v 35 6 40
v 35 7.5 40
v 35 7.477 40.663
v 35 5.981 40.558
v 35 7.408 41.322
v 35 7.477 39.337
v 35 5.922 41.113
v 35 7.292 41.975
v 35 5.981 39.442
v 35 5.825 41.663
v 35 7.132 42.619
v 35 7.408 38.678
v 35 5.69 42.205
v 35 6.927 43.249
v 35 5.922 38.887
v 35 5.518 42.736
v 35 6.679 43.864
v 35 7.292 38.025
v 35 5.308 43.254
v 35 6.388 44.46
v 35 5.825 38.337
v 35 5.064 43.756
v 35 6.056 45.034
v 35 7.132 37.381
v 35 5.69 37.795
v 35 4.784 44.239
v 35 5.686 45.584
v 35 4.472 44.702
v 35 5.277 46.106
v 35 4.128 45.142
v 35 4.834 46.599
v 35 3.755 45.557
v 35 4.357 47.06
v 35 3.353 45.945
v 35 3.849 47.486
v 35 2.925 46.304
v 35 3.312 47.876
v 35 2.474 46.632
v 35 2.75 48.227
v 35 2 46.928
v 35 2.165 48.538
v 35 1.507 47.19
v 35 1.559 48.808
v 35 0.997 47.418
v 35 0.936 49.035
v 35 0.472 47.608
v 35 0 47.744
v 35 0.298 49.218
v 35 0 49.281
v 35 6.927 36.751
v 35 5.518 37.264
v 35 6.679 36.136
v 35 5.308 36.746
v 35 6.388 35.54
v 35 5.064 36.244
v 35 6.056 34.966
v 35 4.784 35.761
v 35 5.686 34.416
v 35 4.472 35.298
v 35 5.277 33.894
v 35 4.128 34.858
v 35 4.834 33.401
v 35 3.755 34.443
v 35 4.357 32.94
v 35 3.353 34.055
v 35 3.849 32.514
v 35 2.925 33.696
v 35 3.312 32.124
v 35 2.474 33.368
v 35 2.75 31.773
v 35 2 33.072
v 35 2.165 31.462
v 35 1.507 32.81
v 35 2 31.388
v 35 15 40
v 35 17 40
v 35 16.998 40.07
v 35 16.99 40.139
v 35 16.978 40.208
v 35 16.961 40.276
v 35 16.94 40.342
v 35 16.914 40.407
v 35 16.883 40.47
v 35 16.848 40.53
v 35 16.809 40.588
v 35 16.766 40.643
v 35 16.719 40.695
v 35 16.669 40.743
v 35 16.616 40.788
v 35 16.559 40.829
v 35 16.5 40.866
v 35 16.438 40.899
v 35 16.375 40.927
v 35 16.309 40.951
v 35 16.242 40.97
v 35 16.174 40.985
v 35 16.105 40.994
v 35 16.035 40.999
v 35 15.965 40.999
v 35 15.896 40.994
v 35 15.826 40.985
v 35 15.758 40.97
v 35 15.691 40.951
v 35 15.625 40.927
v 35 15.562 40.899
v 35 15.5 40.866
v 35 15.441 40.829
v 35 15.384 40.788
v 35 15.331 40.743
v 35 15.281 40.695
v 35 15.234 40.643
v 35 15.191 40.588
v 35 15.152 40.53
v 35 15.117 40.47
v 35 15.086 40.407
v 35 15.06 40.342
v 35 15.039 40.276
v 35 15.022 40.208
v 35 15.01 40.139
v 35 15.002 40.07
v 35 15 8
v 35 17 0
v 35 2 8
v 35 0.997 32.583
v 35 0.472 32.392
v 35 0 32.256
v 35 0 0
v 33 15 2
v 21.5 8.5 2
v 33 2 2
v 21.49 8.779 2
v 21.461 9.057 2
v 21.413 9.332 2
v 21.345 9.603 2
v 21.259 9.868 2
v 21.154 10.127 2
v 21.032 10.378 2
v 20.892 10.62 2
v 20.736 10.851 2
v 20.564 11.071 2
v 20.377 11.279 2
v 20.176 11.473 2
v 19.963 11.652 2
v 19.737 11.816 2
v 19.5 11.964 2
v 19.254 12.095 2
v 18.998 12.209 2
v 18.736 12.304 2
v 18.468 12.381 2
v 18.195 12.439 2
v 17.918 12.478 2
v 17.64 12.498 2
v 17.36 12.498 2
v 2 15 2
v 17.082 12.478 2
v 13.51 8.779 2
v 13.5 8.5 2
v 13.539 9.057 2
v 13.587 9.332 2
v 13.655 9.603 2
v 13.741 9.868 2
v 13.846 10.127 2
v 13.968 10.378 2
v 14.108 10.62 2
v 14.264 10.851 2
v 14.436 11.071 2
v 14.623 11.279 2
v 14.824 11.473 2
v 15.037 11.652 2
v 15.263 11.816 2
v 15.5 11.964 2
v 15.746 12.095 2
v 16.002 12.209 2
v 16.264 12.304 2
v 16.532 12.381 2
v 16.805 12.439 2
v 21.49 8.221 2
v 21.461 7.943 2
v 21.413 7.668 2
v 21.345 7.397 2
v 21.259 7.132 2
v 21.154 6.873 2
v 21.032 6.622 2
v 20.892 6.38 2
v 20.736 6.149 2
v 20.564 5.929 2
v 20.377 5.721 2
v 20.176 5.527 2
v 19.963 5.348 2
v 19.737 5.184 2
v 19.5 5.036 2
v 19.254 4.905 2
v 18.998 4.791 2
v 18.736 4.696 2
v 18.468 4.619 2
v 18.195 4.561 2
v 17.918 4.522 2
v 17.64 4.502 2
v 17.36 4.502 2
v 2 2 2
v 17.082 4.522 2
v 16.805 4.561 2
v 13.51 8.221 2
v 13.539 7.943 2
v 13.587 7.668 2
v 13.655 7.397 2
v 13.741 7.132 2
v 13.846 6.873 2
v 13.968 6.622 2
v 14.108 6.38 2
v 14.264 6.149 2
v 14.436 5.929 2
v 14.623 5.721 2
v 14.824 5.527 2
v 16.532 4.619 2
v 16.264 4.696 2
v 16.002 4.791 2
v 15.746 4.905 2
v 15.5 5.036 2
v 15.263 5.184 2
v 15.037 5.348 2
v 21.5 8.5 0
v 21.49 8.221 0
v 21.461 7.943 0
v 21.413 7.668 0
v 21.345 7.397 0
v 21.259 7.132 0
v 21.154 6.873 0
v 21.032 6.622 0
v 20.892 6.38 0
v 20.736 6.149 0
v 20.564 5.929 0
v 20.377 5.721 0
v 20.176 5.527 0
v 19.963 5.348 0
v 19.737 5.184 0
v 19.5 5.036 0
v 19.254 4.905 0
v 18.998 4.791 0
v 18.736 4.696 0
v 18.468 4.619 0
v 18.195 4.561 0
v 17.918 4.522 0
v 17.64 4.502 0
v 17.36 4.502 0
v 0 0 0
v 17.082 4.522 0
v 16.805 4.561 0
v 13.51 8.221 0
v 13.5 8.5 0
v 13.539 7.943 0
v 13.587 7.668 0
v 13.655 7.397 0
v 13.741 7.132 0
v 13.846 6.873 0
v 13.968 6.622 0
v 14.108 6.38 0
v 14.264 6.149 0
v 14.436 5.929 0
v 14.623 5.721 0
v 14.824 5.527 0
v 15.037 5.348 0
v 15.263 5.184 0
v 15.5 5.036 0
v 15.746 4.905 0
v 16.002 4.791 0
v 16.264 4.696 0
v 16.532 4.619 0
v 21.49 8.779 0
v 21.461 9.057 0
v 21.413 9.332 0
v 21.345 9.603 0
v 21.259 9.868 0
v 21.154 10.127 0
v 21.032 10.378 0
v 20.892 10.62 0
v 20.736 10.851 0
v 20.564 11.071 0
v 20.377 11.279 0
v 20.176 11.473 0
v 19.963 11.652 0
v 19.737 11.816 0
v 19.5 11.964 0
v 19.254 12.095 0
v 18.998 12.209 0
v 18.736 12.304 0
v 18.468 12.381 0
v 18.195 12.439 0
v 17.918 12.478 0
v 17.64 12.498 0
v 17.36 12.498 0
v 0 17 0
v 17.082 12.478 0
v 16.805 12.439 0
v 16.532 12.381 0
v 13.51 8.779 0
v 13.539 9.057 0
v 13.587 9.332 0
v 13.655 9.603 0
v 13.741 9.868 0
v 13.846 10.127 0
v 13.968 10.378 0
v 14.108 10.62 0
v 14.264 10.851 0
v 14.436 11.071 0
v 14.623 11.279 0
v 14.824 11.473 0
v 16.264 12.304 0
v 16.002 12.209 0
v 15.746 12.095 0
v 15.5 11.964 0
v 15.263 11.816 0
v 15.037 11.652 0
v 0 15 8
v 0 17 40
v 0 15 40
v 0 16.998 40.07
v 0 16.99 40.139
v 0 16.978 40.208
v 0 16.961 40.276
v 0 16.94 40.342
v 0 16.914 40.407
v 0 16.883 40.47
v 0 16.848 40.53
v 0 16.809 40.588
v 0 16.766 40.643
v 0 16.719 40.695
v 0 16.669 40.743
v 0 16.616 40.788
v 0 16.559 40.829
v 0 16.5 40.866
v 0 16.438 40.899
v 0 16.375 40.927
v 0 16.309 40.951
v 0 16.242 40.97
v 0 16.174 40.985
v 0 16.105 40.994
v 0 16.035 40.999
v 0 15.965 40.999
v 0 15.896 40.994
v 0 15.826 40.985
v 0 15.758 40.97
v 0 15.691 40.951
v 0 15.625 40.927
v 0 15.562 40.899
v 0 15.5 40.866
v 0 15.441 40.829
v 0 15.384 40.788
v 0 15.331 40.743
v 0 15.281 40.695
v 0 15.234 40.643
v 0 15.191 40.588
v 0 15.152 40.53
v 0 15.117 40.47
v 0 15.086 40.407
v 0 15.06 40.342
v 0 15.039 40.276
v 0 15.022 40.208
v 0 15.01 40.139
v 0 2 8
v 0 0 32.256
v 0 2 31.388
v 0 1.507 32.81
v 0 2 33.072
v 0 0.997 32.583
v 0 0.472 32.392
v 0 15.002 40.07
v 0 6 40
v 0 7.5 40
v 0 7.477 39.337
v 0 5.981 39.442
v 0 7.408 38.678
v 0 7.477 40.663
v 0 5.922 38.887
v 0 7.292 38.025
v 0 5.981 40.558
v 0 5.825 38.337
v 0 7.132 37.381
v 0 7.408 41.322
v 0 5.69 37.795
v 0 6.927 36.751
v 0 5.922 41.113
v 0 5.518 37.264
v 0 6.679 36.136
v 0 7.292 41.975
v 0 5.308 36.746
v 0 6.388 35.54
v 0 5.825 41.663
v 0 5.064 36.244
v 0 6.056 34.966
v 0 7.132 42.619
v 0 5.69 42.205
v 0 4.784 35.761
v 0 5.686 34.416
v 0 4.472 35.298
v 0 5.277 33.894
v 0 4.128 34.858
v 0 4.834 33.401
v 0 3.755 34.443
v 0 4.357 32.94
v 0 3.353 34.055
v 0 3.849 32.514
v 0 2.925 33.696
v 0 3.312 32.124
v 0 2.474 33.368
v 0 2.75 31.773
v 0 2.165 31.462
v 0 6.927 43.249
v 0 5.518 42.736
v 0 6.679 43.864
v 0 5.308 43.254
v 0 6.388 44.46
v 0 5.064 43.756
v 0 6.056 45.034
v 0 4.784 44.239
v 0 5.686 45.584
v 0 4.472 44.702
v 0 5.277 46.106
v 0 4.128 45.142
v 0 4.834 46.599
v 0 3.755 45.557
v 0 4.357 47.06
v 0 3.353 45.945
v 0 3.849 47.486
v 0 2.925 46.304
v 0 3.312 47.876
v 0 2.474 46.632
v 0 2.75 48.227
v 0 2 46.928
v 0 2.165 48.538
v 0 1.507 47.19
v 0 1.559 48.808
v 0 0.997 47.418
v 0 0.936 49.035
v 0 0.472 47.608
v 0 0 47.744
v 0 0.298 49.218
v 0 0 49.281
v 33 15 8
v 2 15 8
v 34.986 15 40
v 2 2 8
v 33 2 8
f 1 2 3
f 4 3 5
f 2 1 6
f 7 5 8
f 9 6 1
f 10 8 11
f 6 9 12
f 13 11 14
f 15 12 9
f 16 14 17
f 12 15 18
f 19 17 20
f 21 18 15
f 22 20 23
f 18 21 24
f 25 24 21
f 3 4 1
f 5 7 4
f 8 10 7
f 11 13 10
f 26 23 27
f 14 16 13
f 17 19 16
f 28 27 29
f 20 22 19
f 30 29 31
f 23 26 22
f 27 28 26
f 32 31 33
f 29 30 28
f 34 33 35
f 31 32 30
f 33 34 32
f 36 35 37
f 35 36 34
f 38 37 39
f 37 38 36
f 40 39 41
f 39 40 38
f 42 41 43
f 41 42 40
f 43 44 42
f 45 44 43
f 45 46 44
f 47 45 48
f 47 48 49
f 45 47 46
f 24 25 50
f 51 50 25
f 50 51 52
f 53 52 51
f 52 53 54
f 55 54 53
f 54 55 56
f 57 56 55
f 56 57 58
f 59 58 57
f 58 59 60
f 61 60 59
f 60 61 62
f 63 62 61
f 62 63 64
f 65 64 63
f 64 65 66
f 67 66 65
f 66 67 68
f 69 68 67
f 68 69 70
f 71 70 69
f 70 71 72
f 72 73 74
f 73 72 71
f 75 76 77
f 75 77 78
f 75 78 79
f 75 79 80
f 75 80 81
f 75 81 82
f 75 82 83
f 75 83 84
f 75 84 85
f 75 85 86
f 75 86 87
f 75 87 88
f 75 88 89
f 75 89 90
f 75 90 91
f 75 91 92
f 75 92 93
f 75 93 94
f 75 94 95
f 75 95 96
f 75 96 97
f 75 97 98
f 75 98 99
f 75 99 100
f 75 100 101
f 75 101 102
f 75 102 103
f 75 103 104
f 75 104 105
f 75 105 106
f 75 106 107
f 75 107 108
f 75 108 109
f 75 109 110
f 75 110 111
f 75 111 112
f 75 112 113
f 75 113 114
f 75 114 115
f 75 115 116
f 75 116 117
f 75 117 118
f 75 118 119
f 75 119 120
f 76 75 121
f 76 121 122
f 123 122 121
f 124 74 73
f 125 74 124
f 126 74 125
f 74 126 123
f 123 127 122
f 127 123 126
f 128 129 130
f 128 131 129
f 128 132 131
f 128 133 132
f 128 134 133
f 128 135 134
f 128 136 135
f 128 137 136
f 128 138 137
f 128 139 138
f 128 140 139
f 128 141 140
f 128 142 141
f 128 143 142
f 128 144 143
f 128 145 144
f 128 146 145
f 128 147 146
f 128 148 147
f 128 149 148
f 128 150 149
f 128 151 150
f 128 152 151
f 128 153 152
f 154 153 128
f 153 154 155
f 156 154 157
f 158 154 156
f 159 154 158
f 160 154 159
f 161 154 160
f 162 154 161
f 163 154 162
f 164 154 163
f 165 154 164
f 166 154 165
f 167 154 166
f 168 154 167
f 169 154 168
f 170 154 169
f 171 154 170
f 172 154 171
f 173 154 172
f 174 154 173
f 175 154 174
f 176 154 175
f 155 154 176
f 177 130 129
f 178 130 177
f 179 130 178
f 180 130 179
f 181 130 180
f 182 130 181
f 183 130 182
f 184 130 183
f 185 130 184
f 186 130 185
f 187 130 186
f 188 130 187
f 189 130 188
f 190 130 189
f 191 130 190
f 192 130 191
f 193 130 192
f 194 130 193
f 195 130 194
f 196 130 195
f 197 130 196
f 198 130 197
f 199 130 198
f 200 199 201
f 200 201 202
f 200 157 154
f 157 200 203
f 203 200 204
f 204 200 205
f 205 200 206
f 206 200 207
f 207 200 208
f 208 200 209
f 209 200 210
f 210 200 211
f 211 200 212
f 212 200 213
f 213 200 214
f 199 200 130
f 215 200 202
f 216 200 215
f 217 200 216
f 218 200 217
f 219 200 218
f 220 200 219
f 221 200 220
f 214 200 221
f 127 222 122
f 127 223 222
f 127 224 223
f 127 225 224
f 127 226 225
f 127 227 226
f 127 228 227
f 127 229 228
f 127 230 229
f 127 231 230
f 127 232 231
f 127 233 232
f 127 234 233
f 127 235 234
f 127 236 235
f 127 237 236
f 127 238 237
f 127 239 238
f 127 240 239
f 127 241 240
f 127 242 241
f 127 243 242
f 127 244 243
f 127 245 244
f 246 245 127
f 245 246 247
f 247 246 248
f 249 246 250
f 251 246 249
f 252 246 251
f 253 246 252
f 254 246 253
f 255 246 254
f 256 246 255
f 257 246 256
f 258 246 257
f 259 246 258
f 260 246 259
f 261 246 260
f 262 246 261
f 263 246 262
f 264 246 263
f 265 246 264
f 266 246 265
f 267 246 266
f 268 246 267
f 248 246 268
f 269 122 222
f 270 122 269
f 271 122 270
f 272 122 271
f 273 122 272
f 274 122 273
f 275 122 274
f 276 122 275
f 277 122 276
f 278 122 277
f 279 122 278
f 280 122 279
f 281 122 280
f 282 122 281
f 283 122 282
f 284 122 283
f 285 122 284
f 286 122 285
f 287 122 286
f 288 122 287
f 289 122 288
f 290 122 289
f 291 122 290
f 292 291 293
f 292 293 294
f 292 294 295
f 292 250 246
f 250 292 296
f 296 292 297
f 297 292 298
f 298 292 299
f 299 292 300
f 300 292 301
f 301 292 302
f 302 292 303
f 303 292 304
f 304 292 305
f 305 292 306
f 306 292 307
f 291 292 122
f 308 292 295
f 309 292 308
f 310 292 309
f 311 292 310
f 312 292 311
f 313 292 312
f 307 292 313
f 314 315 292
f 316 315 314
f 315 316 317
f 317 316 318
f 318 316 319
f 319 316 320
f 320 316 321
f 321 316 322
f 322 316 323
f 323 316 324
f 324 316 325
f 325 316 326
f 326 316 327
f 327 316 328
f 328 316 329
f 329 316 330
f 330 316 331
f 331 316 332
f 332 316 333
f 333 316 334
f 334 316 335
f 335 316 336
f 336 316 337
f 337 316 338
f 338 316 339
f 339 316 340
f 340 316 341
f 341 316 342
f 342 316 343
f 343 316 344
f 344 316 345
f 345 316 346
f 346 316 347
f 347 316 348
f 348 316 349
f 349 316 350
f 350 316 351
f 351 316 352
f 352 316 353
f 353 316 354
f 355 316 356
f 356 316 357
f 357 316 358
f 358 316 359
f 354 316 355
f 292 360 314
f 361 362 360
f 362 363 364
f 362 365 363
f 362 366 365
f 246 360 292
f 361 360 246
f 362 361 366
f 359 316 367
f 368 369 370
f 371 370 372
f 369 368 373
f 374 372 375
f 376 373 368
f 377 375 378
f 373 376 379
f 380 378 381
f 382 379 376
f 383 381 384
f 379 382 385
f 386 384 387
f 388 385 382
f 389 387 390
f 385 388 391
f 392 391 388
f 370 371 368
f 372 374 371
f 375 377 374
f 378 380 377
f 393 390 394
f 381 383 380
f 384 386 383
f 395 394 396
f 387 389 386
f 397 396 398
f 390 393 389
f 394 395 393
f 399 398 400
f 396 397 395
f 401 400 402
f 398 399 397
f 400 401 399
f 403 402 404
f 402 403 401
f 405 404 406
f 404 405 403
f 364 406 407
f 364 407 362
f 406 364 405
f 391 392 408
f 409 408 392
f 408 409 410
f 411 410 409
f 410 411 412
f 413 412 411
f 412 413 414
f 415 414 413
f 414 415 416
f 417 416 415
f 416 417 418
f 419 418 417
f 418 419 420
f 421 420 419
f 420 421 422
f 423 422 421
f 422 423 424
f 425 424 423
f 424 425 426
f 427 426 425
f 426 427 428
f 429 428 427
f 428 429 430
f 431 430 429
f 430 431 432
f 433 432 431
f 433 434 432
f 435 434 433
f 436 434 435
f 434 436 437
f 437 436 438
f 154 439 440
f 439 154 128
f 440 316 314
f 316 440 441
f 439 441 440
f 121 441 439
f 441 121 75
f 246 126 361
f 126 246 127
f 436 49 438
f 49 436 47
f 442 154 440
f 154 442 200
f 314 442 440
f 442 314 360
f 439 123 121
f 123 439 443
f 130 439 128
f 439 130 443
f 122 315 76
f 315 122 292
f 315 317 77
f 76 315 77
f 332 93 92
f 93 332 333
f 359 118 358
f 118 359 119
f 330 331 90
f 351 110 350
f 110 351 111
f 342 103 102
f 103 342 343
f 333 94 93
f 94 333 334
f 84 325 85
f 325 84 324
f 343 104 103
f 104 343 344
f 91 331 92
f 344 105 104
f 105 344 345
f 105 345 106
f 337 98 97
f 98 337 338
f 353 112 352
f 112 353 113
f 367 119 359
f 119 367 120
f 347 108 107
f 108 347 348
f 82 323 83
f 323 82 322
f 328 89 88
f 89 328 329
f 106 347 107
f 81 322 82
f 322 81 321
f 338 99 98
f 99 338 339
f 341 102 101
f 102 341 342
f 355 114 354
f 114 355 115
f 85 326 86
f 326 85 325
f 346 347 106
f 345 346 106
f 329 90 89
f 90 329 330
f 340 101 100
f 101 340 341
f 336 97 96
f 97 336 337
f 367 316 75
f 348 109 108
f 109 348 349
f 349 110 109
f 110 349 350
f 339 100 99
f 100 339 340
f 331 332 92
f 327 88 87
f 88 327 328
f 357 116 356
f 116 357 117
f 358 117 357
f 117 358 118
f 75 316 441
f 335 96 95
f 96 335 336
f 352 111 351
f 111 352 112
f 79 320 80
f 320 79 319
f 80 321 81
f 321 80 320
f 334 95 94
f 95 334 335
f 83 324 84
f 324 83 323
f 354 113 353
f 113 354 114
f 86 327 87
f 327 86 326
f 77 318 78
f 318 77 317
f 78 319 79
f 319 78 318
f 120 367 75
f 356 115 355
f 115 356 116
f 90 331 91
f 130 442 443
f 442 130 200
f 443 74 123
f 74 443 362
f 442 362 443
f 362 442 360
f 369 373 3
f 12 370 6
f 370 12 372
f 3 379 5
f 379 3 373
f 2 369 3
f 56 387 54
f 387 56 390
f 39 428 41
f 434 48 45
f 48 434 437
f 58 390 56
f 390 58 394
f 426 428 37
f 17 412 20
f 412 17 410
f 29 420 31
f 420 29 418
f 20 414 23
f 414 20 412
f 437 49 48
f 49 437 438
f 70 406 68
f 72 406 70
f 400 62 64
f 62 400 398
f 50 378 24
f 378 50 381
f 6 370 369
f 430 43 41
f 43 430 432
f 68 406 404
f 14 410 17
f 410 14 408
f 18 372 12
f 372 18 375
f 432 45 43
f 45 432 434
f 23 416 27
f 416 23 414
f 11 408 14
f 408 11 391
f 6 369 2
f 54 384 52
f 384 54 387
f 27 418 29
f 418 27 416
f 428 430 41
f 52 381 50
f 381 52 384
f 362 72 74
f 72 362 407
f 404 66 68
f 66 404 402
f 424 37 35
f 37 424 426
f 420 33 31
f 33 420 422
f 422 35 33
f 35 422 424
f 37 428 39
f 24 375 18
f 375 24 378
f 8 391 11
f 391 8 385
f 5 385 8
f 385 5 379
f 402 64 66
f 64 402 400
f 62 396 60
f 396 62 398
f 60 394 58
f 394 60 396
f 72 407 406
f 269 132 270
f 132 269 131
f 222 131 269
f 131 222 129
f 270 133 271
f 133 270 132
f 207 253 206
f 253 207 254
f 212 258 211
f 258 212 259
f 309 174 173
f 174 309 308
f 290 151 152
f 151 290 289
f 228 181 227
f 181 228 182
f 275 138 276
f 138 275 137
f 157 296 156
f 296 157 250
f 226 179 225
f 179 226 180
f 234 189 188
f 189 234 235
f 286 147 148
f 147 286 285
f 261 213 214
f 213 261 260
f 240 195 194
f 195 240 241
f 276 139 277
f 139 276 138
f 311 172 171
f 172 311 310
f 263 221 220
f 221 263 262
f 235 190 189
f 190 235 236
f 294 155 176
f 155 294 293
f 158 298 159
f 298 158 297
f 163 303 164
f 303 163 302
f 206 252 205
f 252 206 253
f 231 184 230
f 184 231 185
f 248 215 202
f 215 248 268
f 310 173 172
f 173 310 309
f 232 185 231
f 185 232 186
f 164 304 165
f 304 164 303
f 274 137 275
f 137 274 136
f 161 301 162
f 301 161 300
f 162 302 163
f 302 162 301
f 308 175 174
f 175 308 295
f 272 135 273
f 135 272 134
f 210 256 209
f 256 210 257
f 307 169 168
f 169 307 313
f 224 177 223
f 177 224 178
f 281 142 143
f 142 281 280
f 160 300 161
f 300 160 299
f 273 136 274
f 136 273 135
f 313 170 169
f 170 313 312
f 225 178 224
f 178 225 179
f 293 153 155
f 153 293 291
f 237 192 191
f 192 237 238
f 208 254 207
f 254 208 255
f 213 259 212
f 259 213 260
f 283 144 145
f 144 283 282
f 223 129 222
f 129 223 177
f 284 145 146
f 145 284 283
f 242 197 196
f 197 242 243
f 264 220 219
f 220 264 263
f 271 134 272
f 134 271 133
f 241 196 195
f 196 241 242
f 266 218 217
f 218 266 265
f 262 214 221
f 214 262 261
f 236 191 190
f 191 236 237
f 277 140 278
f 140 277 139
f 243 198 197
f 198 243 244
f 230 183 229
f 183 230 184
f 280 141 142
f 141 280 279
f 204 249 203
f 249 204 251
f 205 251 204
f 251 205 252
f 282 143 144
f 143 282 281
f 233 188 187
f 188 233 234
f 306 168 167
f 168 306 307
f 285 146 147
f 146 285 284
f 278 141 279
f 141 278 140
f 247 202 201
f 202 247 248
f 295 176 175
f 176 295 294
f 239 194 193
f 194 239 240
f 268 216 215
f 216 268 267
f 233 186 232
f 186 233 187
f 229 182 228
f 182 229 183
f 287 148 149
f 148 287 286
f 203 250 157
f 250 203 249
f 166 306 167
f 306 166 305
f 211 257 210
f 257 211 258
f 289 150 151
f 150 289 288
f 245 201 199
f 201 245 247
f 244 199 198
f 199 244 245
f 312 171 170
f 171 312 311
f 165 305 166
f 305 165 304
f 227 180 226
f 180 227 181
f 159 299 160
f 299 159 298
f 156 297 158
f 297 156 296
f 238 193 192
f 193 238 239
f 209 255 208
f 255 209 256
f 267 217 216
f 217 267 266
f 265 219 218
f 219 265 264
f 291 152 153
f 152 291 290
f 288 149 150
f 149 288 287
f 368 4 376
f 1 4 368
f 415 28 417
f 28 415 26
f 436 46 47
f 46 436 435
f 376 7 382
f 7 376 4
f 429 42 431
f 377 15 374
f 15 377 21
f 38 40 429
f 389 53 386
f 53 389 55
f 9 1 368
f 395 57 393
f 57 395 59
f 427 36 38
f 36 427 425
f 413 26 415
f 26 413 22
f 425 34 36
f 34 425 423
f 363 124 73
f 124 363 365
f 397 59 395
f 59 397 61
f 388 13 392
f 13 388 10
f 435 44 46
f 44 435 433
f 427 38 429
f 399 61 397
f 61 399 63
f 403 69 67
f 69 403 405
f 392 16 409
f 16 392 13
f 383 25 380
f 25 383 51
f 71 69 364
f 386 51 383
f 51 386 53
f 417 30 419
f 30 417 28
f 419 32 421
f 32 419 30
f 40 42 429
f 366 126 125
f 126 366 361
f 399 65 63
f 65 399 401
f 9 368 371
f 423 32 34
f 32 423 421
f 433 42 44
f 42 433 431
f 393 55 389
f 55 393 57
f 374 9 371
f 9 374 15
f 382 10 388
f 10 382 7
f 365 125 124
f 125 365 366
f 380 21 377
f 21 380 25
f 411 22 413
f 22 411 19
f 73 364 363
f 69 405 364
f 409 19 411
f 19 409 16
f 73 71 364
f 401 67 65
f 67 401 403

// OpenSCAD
$fn=90;

module holder_positive(h, w, l) {
    // base
    translate([0, 0, 0])
        cube([w, l, 2]);
    translate([0, 0, 0])
        cube([2, l, 8]);
    translate([w - 2, 0, 0])
        cube([2, l, 8]);

    // wall R/
    translate([0, l, 0])
        cube([w, 2, h]);
    translate([0, l + 2/2, h])
        rotate([90, 0, 90])
            cylinder(d=2, h=w);
    
    // wall L
    translate([0, 0, 0])
        cube([w, 2, h]);
    translate([0, -2, h])
        rotate([90, 0, 90])
            cylinder(d = 19, w);
}

module holder_negative(h, w, l) {
    // base
    translate([w / 2, (l+2) / 2, 0])
        cylinder(d=8, h=8);

    // wall L
    translate([0, -20, 0])
        cube([w, 20, h + 19/2]);
    translate([0, -2, h])
        rotate([90, 0, 90])
            cylinder(d = 16, w);
}

module holder(h, w, l) {
    difference() {
        holder_positive(h, w, l);
        holder_negative(h, w, l);
    }
}

holder(40, 35, 15);
